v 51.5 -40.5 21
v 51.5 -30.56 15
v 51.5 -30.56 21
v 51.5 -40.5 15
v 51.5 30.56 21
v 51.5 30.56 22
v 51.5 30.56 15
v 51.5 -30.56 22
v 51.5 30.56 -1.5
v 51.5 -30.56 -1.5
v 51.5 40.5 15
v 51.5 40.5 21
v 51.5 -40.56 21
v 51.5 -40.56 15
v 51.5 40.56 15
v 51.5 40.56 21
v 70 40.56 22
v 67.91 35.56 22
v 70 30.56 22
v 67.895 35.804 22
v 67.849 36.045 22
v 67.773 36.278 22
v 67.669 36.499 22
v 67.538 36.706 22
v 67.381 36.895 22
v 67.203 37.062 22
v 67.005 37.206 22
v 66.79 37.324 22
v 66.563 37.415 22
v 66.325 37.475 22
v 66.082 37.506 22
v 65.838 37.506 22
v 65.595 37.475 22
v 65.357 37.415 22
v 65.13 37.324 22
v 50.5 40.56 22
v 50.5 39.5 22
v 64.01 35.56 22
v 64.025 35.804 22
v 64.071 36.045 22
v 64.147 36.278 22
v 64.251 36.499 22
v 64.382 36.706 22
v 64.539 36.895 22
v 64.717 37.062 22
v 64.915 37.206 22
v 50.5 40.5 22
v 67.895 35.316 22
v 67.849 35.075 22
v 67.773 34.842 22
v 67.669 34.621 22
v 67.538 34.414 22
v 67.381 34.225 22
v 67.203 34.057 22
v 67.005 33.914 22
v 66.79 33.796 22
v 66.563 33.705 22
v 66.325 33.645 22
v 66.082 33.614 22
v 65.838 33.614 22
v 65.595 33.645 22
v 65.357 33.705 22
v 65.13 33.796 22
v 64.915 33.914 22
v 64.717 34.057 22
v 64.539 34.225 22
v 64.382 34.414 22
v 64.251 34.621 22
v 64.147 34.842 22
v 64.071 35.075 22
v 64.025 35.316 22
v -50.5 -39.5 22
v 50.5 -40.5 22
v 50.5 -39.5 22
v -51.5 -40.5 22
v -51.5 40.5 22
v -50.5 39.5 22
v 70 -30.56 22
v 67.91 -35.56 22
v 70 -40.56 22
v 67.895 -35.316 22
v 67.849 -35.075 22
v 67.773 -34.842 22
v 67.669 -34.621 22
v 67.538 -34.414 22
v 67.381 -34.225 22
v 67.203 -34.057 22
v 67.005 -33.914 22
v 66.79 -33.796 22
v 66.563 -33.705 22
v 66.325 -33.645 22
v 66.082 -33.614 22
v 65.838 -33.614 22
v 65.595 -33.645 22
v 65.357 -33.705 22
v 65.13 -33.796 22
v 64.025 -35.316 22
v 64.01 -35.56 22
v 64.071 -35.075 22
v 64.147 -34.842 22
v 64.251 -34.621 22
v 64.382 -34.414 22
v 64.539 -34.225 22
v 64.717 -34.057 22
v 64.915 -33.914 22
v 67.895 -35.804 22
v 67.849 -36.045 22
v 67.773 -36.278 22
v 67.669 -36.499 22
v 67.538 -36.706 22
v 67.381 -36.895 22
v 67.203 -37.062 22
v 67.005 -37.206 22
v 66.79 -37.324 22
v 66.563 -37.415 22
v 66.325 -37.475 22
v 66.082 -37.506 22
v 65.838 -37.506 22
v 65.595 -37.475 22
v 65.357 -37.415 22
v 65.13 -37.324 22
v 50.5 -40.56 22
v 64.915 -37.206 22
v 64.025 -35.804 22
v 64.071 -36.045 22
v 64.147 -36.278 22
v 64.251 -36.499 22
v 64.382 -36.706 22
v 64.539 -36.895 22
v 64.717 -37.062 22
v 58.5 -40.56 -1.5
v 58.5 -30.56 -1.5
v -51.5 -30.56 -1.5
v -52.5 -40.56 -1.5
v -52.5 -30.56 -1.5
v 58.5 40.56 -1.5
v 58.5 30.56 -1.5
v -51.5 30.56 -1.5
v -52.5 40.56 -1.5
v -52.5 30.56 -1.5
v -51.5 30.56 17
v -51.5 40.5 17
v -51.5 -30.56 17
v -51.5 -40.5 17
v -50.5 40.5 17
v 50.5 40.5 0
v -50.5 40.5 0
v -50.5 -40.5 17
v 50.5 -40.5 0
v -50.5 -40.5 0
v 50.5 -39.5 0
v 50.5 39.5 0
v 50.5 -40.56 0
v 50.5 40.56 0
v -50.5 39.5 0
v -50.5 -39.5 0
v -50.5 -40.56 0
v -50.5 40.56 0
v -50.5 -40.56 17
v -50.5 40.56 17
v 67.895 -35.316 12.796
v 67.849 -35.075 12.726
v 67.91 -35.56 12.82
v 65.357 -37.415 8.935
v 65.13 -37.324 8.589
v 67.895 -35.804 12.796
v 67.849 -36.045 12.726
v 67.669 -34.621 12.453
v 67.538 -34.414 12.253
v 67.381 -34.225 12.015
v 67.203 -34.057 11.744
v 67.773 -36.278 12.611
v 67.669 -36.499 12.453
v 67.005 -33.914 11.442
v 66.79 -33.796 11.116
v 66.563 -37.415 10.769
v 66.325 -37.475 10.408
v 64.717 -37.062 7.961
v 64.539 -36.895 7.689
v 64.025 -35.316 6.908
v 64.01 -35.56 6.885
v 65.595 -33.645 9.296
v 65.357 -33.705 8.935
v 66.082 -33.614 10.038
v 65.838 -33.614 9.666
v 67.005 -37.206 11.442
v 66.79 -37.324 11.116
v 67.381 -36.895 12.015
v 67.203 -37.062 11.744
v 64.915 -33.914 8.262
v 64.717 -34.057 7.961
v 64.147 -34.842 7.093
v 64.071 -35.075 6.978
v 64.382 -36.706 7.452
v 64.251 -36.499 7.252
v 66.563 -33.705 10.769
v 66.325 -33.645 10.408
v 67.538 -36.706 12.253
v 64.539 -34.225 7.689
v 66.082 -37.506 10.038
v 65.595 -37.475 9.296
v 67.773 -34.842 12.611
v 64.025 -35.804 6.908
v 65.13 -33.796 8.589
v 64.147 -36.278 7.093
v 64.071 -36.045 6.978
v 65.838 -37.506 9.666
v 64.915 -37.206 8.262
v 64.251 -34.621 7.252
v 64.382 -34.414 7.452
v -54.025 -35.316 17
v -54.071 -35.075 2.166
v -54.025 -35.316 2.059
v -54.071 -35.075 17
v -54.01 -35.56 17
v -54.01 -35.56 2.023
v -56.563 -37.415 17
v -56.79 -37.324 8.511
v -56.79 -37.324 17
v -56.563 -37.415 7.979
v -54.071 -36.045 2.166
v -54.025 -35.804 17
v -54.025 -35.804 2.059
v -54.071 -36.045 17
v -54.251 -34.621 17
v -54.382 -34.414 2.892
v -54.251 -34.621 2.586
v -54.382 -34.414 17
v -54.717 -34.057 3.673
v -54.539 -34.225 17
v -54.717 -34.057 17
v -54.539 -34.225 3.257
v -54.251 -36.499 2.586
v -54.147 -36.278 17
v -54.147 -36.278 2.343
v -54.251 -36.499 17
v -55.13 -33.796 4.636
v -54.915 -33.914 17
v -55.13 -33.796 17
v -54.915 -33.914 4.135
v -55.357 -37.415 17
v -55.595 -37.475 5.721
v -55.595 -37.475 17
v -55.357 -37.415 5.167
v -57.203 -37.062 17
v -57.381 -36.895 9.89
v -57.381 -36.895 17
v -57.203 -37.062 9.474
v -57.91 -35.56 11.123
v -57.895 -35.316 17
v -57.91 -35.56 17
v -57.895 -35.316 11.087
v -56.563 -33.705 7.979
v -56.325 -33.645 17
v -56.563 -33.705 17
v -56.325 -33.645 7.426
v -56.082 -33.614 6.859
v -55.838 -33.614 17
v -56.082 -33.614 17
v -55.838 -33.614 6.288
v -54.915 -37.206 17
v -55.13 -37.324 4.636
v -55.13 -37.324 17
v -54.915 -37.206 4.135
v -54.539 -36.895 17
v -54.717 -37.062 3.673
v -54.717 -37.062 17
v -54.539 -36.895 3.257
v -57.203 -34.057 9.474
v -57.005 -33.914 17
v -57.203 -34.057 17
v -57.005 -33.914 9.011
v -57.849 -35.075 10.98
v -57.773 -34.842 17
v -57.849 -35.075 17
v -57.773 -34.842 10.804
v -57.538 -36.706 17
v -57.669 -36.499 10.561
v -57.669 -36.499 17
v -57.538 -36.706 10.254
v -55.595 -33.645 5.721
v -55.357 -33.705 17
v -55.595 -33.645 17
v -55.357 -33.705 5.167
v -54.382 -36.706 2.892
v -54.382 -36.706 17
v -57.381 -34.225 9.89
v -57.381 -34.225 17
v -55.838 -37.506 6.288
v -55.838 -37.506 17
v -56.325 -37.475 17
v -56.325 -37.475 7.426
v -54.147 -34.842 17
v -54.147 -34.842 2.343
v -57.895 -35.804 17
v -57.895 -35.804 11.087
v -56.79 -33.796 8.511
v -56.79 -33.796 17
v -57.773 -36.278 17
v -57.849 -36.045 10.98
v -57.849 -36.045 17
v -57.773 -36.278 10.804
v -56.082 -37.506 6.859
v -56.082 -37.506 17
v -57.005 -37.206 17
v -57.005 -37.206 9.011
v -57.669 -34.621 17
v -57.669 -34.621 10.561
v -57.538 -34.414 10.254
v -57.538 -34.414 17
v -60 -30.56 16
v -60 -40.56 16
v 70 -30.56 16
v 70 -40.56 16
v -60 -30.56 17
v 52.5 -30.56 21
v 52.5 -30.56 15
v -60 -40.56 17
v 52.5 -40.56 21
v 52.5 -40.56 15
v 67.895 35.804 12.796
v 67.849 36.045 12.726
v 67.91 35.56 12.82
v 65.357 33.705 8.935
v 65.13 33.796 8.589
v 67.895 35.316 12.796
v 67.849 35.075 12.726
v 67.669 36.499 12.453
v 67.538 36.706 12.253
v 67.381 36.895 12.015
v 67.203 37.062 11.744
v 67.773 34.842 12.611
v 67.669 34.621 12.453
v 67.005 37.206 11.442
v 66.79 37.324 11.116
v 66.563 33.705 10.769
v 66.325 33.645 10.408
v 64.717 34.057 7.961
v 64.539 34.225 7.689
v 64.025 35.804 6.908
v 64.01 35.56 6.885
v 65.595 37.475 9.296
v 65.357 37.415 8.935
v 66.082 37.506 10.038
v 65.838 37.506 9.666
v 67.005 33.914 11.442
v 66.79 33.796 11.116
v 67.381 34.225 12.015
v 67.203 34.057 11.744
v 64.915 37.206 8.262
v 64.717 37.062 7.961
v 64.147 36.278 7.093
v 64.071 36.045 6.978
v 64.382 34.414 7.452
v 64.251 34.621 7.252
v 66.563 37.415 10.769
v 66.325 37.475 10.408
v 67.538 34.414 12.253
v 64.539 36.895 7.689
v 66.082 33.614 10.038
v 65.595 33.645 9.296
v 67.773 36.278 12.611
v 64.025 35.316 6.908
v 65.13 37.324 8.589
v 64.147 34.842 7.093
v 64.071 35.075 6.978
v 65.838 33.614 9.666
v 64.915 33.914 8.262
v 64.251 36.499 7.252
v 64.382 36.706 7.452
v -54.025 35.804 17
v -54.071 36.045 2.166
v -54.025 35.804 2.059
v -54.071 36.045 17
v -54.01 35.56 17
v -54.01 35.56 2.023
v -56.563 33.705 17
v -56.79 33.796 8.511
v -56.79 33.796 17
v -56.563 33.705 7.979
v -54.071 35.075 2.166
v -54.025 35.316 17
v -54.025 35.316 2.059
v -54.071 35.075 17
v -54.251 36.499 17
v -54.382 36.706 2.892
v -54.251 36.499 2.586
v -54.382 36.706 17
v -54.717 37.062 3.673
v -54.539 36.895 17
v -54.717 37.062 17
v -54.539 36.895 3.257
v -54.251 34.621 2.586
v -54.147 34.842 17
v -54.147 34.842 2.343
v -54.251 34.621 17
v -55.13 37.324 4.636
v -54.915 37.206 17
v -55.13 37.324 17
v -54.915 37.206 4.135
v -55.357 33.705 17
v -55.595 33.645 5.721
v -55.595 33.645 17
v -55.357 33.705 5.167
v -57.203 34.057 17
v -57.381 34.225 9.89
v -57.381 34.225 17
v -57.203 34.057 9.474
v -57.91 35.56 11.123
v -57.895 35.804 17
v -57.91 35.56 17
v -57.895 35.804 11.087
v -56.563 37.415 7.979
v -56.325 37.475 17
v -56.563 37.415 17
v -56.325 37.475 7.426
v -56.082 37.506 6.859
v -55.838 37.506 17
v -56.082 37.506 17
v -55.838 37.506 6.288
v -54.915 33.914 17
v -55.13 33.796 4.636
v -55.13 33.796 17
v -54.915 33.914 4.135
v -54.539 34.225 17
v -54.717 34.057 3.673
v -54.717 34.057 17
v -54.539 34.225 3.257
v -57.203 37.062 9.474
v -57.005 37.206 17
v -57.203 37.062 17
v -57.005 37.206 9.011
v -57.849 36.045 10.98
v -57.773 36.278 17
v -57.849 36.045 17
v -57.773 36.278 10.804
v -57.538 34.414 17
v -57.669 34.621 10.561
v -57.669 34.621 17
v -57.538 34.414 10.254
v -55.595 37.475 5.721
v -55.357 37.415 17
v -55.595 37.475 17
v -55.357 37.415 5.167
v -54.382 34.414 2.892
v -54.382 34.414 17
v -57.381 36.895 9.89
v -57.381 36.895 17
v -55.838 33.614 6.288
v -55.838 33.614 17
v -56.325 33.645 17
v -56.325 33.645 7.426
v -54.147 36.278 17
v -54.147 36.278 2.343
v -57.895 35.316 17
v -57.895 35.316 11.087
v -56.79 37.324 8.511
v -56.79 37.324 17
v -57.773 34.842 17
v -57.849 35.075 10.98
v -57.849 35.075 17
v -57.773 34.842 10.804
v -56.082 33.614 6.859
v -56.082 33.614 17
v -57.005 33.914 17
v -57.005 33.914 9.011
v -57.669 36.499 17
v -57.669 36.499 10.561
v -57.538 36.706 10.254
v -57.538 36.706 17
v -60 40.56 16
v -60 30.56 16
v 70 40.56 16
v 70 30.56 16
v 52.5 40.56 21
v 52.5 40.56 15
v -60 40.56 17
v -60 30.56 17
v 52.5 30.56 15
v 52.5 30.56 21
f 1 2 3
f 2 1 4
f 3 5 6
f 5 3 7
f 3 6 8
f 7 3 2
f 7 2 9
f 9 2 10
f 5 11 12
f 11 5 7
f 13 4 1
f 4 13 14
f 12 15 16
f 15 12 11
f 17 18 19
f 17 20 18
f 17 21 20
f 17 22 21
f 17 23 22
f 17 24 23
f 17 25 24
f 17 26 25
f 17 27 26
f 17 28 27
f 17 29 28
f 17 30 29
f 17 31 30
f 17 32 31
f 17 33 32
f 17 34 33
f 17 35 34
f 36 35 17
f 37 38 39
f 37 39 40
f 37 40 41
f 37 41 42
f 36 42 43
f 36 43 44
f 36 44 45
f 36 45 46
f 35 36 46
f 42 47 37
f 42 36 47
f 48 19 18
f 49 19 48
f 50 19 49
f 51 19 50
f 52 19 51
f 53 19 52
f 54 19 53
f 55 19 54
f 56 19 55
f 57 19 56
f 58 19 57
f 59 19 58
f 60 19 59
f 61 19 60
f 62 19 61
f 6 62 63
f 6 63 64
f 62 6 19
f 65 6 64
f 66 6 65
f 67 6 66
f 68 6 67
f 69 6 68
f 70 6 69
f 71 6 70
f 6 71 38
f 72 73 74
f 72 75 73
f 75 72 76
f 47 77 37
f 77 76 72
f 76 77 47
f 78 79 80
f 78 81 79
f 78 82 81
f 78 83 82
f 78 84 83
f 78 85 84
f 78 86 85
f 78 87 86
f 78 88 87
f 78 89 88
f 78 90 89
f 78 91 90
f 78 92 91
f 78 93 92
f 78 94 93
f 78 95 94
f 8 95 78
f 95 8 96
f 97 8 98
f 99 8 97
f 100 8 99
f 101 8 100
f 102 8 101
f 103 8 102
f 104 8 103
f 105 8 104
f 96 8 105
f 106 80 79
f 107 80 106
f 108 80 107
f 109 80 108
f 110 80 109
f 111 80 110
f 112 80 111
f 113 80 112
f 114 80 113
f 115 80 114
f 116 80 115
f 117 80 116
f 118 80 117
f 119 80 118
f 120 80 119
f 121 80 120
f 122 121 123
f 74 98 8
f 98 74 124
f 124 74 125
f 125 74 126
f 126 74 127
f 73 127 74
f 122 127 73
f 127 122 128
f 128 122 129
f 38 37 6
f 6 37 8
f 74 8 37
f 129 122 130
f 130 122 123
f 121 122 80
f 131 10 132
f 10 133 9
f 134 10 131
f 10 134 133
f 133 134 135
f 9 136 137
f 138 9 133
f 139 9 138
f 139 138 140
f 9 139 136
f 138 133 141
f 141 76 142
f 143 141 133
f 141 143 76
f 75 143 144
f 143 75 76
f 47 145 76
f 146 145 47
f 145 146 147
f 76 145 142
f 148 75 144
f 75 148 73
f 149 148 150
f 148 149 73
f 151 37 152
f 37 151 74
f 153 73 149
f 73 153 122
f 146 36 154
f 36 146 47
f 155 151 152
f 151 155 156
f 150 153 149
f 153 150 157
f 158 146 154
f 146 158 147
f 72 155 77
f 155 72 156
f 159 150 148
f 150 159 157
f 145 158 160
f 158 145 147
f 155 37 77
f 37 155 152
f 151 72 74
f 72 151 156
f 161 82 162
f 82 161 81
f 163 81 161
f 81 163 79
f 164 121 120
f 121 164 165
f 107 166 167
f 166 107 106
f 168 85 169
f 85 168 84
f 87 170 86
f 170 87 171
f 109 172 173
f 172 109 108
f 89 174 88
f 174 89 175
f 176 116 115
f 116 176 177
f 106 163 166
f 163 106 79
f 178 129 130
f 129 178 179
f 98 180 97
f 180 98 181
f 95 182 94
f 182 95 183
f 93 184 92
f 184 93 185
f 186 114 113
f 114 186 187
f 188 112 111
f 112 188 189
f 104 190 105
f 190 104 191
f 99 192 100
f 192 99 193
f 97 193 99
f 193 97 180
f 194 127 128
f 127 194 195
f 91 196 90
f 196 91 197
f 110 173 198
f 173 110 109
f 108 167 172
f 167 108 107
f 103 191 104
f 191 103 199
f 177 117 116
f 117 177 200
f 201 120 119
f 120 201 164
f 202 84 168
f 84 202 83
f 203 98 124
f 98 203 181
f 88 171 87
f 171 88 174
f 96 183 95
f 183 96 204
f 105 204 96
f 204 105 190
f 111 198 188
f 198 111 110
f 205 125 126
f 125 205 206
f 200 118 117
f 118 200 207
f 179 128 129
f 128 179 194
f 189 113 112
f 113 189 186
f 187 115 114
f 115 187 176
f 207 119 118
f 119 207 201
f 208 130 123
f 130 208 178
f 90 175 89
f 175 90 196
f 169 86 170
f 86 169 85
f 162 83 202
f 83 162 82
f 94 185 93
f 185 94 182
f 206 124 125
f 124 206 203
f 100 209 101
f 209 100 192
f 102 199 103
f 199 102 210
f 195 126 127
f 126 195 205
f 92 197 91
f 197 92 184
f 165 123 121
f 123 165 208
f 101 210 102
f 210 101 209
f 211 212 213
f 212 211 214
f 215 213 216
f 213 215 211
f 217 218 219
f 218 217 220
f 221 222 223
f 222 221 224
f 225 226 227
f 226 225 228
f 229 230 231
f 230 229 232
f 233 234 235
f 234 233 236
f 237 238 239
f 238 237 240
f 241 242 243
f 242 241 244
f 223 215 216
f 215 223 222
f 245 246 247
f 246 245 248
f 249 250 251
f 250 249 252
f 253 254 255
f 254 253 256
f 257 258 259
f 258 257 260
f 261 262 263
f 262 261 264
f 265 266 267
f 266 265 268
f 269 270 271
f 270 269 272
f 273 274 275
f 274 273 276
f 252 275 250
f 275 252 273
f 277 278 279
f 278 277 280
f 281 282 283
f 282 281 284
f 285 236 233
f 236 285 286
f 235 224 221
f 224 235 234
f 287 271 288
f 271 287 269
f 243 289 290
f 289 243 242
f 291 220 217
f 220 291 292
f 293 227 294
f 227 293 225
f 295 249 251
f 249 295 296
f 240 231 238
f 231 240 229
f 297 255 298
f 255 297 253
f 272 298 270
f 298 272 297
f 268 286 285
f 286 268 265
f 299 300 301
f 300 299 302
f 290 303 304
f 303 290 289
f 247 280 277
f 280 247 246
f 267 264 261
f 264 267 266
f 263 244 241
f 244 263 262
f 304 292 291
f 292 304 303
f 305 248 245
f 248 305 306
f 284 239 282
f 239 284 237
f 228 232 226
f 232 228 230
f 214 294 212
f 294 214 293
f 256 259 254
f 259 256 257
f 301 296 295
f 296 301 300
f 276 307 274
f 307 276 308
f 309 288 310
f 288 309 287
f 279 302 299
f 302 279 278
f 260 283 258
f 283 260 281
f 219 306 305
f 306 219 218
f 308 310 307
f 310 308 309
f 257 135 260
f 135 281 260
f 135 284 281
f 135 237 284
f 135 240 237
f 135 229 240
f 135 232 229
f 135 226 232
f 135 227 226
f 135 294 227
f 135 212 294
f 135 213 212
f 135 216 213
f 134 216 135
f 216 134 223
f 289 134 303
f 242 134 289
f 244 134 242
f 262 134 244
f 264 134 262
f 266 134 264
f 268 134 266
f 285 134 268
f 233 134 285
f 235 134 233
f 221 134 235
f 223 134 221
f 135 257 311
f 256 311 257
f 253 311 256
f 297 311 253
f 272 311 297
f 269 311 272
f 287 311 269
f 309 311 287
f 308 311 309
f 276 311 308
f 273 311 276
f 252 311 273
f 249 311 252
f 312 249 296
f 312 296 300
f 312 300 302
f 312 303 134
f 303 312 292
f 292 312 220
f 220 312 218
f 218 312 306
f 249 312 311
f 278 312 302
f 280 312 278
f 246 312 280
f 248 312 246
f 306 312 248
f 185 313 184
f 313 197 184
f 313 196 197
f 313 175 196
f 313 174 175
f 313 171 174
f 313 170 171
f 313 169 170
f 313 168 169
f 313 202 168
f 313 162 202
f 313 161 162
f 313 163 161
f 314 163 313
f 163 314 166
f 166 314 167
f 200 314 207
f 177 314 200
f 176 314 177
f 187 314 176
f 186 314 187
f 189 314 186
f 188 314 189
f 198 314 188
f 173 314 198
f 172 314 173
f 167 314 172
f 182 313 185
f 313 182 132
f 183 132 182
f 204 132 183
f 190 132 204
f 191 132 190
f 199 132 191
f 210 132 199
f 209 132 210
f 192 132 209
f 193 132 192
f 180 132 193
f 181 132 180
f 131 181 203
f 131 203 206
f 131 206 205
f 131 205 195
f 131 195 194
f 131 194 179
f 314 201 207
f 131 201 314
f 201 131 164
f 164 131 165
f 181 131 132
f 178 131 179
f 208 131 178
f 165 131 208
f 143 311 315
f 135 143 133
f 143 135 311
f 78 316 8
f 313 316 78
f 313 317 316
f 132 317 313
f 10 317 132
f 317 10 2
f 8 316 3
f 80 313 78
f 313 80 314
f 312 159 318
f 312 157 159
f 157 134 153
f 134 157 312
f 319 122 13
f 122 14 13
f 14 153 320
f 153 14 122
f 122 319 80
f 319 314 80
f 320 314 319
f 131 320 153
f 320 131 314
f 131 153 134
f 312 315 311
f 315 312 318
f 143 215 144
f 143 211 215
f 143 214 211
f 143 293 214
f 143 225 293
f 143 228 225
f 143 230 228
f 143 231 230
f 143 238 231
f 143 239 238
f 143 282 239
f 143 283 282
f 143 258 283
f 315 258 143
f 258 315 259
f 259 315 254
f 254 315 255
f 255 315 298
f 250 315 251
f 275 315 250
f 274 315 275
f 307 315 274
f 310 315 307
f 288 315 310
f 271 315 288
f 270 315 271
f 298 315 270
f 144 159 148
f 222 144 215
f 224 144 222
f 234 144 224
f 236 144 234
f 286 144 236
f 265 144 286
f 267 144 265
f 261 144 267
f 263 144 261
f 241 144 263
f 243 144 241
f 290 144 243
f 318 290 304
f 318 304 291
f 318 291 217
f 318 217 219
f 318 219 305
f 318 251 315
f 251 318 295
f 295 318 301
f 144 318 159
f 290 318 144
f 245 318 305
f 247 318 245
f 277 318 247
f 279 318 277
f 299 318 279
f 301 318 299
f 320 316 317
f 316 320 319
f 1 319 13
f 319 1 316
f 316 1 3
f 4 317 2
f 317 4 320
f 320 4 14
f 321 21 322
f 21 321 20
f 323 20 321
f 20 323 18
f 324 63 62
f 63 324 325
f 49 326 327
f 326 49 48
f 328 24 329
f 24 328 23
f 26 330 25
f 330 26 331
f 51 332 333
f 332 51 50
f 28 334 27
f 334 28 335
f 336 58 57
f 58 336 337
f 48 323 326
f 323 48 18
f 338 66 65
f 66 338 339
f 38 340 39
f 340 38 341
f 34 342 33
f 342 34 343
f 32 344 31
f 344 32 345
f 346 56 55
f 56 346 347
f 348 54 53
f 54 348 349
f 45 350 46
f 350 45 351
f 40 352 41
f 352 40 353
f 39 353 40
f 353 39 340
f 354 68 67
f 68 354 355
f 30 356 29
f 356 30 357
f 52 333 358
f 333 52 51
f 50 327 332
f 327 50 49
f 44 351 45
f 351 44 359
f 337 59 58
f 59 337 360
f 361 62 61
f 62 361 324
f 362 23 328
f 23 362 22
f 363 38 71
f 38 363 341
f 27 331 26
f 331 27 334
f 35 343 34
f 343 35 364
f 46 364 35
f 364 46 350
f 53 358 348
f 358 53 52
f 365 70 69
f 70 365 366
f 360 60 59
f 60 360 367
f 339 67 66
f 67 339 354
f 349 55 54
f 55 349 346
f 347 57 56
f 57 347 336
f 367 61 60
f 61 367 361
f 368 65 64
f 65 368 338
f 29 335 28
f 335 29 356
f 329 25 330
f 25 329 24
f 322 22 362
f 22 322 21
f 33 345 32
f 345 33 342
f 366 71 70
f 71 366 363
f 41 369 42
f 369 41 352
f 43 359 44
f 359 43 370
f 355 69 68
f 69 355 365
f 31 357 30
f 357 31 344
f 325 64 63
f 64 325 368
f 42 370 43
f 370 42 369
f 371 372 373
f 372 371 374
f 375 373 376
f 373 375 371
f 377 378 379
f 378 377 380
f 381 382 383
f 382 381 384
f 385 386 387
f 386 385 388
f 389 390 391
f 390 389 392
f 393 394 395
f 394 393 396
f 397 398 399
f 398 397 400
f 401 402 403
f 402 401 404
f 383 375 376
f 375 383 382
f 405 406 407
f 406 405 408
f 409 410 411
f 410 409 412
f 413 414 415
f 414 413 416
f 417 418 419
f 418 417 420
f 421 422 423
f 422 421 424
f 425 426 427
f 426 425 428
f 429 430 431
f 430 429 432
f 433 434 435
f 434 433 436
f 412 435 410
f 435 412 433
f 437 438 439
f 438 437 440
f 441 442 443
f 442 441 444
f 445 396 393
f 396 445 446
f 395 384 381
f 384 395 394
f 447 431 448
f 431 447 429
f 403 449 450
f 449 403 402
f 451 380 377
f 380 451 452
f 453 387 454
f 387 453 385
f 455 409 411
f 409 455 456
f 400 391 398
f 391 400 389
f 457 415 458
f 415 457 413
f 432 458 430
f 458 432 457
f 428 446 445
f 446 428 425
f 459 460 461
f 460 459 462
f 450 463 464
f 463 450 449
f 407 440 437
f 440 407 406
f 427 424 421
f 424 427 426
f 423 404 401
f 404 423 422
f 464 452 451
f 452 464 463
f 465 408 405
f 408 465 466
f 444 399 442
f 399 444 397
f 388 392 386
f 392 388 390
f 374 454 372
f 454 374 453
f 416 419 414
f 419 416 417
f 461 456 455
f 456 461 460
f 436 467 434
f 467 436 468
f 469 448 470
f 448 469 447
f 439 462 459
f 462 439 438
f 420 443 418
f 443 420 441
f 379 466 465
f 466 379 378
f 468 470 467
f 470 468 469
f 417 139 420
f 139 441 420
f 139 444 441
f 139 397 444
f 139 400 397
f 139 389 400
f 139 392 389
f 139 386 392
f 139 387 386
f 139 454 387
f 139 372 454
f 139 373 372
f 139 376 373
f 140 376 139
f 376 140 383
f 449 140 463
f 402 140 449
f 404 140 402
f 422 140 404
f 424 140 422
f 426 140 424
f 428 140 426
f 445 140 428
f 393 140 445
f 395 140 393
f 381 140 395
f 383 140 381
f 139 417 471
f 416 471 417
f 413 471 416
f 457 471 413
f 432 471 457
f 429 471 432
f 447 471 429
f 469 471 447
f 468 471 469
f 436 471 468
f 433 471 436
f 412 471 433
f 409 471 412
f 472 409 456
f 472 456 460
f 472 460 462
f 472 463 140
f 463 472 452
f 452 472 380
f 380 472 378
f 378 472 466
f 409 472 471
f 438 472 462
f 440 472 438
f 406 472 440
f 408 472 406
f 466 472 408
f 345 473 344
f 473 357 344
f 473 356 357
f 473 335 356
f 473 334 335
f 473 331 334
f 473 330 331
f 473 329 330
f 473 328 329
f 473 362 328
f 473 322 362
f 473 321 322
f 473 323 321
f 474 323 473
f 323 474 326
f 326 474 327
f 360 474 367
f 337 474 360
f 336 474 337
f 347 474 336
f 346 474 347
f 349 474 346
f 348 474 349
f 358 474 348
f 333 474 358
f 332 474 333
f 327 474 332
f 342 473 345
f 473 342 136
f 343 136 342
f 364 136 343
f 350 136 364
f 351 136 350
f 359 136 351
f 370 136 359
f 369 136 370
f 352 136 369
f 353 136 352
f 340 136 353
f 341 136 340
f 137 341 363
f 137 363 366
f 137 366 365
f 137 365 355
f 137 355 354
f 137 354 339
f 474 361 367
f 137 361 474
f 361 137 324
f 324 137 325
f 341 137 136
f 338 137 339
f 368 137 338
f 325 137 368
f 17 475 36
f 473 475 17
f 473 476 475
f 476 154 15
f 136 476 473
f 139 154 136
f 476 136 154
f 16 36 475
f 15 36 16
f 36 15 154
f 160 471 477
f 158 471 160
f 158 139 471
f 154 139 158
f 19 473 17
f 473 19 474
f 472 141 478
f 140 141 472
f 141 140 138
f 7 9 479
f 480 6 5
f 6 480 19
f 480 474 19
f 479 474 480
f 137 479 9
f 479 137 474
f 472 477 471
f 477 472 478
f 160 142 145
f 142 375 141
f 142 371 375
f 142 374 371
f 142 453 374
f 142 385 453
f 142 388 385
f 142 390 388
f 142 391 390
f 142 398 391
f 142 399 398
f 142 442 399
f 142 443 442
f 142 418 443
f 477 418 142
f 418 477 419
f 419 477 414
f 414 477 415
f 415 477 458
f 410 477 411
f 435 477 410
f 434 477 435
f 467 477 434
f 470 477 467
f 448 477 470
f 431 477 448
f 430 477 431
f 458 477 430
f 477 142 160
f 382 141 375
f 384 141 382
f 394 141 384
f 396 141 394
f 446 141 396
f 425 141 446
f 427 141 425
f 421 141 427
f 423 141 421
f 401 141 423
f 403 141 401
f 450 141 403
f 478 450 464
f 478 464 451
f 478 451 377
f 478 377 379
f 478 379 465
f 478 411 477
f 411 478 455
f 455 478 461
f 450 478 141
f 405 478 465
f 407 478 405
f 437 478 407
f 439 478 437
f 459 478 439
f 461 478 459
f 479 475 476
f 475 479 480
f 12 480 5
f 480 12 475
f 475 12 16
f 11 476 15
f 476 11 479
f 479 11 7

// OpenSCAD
module battery_case(){

battery_length = 101;
battery_width = 79;
battery_height = 22;
wall_around = 1;
wall_top = 1.5;


beam_length = 130;
beam_thickness = 10;
front_offset = 6;

screw_distance = 10.16*12;


difference(){
    translate([0, 0, battery_height/2-wall_top/2]) cube([battery_length+wall_around*2, battery_width+wall_around*2, battery_height+wall_top], center=true);
    translate([0, 0, battery_height/2]) cube([battery_length, battery_width, battery_height], center=true);
}


offset = 5;

for(y=[-0.5, 0.5]) translate([0, y*10.16*7, 0]) difference(){
    hull(){
        translate([offset, 0, battery_height-3]) cube([beam_length, beam_thickness, 6], center=true);
        
        
        translate([3, 0, 0.05]) cube([battery_length+2*wall_around+5+3, beam_thickness, 0.1+wall_top*2], center=true);

    }
    translate([0, 0, battery_height/2]) cube([battery_length, battery_width, battery_height], center=true);
    
    translate([-20, 0, battery_height*1.5-5]) cube([battery_length, battery_width, battery_height], center=true);

    translate([battery_length/2+wall_around+0.5, 0, battery_height-4])
        cube([1, 100, 6], center=true);

    for(x=[0.5, -0.5]) translate([offset+screw_distance*x, 0, 0]){
        cylinder(d=3.9, h=50, center=true, $fn=50);
        // cylinder(d=3.8, h=30, center=true, $fn=50);

    }
}


}



battery_case();
